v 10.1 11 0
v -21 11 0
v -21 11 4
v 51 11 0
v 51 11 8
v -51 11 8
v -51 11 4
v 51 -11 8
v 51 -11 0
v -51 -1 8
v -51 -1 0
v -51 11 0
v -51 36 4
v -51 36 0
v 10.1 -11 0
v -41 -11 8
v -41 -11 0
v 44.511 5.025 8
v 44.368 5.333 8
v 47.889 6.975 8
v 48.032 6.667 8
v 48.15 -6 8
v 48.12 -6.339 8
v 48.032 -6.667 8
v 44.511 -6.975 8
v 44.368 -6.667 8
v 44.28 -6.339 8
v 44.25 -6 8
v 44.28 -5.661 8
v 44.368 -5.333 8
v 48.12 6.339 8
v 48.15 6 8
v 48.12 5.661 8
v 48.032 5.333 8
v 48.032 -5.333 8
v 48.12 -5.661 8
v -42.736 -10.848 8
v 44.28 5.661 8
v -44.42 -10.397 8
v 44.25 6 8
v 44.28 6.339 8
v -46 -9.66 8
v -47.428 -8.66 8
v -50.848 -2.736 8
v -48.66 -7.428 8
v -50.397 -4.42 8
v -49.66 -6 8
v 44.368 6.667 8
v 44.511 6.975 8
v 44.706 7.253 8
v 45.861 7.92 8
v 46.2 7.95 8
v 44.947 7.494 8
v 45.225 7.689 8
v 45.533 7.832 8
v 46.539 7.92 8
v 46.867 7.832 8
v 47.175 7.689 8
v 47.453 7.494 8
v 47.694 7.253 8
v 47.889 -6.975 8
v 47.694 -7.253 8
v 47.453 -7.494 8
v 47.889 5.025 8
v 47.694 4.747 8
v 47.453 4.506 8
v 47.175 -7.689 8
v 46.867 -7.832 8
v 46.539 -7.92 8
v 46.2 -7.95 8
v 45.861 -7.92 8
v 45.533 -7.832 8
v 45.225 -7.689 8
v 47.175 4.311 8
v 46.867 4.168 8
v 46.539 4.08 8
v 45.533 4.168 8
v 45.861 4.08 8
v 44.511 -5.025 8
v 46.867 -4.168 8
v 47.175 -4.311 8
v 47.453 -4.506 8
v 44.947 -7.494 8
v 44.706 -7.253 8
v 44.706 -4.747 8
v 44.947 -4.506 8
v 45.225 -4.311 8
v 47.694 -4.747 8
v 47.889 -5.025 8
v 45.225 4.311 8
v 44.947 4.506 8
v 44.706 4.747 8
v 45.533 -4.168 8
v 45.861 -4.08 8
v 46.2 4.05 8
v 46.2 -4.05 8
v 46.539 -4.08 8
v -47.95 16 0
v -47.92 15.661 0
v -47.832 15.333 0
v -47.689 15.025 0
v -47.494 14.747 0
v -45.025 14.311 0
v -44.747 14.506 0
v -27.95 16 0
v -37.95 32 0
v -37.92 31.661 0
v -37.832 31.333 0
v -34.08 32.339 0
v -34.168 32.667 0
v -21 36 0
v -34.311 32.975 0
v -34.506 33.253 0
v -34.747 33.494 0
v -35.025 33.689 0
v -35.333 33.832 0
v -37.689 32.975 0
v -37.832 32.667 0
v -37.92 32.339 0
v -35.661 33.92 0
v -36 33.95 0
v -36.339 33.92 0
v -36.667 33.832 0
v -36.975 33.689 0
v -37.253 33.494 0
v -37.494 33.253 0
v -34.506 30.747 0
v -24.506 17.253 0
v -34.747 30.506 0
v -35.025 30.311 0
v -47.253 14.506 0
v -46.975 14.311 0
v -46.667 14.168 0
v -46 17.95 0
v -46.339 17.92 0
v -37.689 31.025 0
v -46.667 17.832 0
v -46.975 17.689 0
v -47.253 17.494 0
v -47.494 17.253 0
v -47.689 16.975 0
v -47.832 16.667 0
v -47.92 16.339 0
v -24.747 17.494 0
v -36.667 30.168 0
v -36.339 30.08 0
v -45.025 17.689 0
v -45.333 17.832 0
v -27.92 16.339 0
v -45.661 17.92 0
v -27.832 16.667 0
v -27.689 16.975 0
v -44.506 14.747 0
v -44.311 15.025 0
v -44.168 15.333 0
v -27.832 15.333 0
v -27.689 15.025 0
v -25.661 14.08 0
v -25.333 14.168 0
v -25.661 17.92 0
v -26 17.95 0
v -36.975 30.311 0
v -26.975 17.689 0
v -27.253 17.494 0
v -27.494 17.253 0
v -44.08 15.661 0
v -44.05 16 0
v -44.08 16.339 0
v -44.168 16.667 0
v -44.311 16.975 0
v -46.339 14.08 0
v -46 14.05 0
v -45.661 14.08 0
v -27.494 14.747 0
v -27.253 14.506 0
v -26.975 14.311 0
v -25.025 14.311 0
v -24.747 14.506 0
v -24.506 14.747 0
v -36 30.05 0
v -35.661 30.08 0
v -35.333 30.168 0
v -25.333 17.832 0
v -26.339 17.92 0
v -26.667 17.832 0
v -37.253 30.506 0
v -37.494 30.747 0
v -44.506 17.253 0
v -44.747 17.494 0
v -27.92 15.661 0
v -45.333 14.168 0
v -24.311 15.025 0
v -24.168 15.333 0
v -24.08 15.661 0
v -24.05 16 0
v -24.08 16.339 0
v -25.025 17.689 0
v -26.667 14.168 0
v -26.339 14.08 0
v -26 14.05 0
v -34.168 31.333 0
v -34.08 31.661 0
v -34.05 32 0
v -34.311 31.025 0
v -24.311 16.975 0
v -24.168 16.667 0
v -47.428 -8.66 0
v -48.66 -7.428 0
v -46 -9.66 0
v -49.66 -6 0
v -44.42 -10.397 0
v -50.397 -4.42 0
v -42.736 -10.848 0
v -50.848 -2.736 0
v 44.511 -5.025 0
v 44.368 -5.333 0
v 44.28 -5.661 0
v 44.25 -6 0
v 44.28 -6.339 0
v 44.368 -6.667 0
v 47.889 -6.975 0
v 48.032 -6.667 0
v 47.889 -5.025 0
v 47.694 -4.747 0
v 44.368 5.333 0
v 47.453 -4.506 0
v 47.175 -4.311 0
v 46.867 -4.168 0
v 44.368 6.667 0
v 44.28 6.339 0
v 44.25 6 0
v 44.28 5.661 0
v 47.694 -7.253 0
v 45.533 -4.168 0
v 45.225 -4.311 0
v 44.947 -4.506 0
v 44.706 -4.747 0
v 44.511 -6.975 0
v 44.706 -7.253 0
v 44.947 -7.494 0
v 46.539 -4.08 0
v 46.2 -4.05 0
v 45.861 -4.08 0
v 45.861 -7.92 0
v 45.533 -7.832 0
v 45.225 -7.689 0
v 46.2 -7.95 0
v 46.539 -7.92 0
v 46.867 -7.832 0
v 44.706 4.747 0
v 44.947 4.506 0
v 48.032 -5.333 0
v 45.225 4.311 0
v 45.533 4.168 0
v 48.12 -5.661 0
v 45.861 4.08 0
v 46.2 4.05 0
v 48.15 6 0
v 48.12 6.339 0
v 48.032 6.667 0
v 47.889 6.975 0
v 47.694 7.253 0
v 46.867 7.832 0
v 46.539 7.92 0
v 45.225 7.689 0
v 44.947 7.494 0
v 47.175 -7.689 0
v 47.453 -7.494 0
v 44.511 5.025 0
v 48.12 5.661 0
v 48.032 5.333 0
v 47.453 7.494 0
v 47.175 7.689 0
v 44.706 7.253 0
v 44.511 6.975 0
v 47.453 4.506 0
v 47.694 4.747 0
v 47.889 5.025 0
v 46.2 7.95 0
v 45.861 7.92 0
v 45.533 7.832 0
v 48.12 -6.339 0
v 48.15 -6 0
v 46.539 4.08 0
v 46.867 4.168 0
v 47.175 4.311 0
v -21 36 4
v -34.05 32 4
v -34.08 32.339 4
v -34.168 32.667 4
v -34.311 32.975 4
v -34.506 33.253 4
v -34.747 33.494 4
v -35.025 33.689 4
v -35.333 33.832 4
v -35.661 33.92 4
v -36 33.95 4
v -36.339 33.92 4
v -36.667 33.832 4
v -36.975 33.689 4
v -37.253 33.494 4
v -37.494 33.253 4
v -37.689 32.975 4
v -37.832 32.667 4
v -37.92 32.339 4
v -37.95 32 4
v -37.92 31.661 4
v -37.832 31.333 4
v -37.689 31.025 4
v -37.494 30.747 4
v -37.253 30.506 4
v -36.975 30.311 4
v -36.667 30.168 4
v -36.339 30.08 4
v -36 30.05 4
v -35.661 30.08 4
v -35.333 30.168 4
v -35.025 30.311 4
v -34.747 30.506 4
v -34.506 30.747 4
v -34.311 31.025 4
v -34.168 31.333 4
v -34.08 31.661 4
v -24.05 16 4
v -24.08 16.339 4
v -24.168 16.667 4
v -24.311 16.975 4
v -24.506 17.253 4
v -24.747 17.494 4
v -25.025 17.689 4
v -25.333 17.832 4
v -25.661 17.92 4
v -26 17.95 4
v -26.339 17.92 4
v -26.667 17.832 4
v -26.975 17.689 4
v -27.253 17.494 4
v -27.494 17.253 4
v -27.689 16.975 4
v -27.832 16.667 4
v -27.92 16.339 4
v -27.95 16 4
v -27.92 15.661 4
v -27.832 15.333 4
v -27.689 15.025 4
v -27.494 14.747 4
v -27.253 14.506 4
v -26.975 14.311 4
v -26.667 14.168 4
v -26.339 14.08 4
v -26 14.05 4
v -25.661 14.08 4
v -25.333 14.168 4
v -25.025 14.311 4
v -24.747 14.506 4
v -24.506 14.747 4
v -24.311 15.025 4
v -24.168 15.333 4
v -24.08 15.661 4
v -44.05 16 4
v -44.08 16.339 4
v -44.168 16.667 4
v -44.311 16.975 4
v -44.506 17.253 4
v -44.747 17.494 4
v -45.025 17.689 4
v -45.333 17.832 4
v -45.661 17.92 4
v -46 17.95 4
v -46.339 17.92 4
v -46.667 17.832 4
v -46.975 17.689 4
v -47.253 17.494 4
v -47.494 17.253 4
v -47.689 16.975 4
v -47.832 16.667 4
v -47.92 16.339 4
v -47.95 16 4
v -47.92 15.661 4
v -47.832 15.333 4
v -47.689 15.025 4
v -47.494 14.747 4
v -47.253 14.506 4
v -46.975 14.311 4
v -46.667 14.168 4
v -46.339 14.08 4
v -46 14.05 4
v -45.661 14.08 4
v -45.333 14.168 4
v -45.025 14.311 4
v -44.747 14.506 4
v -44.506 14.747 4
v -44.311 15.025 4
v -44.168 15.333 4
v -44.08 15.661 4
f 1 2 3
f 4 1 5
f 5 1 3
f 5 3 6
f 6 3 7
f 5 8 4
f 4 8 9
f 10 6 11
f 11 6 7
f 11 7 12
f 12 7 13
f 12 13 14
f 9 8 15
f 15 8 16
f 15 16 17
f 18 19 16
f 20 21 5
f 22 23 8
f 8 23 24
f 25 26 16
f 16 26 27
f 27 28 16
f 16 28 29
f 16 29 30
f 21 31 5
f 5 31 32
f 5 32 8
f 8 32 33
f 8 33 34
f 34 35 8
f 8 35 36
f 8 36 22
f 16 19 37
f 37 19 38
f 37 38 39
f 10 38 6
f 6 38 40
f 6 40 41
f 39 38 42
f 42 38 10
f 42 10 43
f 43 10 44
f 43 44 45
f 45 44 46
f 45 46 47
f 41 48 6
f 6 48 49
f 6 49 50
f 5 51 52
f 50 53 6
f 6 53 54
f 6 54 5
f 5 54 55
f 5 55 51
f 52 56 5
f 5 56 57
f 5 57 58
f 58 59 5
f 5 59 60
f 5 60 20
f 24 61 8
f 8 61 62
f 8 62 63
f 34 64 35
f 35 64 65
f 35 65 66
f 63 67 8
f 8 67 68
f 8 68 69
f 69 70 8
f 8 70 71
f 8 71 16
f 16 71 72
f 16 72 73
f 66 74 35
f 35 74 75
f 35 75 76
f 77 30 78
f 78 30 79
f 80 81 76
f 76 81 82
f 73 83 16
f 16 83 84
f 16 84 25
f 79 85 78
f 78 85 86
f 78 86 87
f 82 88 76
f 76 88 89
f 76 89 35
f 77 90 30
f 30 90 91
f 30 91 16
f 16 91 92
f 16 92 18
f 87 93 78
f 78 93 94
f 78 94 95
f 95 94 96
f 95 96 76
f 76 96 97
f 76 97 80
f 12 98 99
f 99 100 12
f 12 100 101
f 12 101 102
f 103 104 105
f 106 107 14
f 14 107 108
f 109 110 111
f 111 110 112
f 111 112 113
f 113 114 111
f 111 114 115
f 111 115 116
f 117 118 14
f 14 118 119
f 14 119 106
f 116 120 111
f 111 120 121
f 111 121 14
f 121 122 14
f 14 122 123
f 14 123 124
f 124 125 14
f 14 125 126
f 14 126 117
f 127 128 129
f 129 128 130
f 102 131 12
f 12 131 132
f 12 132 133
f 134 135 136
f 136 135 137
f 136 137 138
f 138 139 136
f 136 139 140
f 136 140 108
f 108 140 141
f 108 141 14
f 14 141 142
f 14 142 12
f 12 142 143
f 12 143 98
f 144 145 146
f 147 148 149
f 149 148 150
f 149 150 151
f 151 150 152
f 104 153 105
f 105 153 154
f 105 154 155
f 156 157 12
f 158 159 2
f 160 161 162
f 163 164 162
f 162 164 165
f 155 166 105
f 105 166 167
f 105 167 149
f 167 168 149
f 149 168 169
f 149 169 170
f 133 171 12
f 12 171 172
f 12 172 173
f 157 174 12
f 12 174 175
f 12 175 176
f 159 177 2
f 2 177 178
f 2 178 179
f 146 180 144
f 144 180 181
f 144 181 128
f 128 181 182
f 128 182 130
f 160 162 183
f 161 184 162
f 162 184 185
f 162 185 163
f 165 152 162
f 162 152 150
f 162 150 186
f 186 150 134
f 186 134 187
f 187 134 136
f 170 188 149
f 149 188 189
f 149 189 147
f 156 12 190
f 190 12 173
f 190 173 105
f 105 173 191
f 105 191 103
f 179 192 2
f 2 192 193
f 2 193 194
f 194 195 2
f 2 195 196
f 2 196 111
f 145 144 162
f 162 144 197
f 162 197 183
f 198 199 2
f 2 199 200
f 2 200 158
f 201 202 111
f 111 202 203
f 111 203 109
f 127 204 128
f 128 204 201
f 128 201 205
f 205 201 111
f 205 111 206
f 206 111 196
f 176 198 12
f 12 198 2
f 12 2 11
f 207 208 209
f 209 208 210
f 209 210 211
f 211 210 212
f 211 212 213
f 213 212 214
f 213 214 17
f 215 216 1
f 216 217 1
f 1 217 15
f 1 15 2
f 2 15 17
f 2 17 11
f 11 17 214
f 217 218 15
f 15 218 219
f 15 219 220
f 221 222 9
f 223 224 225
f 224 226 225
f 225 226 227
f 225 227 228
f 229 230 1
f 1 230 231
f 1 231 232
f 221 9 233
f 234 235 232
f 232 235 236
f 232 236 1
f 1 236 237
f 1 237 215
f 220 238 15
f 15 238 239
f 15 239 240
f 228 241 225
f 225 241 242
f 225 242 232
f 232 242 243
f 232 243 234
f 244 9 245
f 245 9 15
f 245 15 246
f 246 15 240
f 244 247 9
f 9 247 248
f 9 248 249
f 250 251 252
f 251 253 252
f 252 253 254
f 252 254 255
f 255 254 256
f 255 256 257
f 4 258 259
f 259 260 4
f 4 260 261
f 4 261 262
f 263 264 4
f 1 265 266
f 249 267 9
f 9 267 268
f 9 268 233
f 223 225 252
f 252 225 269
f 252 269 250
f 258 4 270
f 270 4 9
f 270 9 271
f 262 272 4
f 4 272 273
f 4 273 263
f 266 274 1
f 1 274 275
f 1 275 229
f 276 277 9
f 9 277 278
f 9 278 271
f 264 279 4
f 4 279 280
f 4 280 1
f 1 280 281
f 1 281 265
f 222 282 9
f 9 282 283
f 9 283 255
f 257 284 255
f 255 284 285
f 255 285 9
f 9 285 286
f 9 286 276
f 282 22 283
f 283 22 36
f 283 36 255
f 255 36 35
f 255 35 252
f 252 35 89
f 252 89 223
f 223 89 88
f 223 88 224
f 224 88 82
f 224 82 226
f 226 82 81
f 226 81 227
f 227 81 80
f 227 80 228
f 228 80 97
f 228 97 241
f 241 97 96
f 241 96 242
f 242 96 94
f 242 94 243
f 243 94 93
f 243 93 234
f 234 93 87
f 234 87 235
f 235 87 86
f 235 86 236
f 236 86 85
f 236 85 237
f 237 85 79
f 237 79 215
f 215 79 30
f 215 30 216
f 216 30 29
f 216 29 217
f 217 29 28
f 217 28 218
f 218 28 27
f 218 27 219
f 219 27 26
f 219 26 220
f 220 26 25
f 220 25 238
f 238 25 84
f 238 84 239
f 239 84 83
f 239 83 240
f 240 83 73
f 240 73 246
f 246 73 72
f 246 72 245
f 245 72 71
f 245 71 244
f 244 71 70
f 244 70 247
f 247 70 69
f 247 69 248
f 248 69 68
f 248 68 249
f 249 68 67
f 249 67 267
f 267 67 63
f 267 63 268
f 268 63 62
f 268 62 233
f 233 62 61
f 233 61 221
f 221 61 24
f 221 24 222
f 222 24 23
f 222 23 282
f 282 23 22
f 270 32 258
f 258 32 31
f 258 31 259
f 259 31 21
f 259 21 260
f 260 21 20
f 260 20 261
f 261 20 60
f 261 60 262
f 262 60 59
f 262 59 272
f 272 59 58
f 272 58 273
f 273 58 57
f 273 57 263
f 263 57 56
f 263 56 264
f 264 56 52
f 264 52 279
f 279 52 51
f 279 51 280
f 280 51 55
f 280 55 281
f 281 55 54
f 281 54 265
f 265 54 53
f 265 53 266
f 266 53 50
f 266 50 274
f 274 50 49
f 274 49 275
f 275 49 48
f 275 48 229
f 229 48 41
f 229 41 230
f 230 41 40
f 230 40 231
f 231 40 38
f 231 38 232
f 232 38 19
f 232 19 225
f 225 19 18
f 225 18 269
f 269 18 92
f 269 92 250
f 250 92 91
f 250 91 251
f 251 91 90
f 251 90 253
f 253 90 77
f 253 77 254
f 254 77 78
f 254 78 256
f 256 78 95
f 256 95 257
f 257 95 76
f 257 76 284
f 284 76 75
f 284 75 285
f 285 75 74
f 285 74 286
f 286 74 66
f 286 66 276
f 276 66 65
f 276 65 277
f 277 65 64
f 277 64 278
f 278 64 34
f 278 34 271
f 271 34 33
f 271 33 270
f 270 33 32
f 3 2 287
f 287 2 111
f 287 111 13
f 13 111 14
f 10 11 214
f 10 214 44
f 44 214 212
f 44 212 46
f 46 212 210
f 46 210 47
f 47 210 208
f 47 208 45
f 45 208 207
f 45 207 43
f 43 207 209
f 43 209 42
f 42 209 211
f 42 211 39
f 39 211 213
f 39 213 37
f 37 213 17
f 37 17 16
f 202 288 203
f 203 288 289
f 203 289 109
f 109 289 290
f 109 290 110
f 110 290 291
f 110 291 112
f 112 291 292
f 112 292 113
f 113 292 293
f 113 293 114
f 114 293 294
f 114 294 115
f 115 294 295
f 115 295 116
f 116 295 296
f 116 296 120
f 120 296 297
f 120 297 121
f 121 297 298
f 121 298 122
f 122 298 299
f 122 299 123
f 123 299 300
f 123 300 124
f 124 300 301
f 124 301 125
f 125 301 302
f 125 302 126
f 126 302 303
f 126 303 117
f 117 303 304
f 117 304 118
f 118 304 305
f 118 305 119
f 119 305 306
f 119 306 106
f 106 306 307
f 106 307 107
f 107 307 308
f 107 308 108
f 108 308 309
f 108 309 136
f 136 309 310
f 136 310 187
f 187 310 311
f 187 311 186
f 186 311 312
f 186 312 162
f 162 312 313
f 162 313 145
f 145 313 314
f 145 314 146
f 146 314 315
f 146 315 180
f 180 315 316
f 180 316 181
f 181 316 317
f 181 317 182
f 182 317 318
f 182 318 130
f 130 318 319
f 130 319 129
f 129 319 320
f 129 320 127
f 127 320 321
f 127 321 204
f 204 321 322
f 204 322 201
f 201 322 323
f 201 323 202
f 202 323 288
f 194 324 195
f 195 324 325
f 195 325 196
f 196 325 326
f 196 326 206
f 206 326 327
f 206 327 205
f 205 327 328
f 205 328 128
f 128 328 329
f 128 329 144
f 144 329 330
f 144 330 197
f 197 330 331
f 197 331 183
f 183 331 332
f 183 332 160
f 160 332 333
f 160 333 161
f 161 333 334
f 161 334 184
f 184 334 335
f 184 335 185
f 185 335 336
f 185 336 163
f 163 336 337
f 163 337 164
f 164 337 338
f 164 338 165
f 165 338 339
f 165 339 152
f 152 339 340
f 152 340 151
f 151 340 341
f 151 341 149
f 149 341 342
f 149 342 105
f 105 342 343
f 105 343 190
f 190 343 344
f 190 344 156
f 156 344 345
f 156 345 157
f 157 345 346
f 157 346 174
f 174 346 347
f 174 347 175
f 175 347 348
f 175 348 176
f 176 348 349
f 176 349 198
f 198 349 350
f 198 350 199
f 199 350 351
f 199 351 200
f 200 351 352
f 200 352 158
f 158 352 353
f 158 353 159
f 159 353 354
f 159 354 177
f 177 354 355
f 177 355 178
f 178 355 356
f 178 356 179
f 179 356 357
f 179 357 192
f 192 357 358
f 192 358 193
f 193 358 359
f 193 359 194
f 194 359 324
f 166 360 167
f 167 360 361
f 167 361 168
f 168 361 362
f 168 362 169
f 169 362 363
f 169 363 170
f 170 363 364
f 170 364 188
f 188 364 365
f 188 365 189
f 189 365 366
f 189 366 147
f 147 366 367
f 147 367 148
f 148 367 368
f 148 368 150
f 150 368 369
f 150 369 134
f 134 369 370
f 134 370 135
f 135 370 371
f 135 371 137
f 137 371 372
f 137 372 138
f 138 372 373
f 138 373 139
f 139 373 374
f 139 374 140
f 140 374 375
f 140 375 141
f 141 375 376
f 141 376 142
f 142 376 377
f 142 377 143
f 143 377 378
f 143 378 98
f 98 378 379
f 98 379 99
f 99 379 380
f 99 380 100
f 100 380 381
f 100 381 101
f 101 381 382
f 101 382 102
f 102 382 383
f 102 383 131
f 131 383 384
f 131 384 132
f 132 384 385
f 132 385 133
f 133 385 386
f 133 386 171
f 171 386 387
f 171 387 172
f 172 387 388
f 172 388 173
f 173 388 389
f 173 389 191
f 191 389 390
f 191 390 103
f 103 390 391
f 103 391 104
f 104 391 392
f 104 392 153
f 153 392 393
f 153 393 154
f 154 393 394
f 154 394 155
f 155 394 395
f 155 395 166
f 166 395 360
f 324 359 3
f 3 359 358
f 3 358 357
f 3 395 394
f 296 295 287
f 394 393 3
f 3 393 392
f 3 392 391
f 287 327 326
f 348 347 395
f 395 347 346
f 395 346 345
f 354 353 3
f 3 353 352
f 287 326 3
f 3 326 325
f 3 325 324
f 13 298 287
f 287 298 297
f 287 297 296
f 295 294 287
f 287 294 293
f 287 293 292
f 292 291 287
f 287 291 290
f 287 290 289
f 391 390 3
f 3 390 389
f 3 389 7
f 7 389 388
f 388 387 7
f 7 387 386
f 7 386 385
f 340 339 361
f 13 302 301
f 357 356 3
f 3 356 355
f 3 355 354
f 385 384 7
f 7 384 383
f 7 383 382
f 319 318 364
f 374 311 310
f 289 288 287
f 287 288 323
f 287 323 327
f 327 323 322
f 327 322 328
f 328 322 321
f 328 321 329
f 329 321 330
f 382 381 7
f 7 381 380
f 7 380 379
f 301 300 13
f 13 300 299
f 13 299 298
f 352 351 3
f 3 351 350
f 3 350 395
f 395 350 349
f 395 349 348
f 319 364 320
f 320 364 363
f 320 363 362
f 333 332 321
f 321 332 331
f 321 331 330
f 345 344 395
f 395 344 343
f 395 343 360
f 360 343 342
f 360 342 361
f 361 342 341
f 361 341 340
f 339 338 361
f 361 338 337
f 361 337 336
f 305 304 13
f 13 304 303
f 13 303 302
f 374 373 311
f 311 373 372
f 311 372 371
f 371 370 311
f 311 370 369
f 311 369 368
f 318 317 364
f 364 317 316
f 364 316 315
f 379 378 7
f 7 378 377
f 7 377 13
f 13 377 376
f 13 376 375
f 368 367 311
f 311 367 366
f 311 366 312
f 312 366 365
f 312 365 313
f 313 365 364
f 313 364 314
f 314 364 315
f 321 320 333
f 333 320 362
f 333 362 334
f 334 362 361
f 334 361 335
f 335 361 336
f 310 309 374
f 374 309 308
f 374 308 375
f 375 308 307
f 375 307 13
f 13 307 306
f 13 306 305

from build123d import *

# Parameters (mm, degrees)
SKETCH1_W                    = 102
SKETCH1_H                    = 22
EXTRUDE1_DEPTH               = 8
F_4_0_4_DIAMETER_HOLE1_D     = 3.9
F_4_0_4_DIAMETER_HOLE1_DEPTH = 15
SKETCH3_W                    = 30
SKETCH3_H                    = 25
EXTRUDE2_DEPTH               = 8
FILLET1_R                    = 10
F_4_0_4_DIAMETER_HOLE2_D     = 3.9
F_4_0_4_DIAMETER_HOLE2_DEPTH = 15
SKETCH5_W                    = 30
SKETCH5_H                    = 25
EXTRUDE3_DEPTH               = 4


with BuildPart() as part:
    # Sketch1 → Extrude1 (new body)
    with BuildSketch(Plane.XY):
        Rectangle(SKETCH1_W, SKETCH1_H)
    extrude(amount=EXTRUDE1_DEPTH)

    # Ø4.0 (4) Diameter Hole1
    with Locations(Plane(origin=(46.2, 6, 8), x_dir=(1, 0, 0), z_dir=(0, 0, 1))):
        with Locations((0, 0), (0, -12)):
            Hole(F_4_0_4_DIAMETER_HOLE1_D / 2, depth=F_4_0_4_DIAMETER_HOLE1_DEPTH)

    # Sketch3 → Extrude2 (add)
    with BuildSketch(Plane.XY):
        with Locations((-36, 23.5)):
            Rectangle(SKETCH3_W, SKETCH3_H)
    extrude(amount=EXTRUDE2_DEPTH)

    # Fillet1
    fillet1_edges = [part.edges().sort_by_distance(p)[0] for p in [
        (-51, -11, 4),
    ]]
    fillet(fillet1_edges, radius=FILLET1_R)

    # Ø4.0 (4) Diameter Hole2
    with Locations(Plane(origin=(-46, 16, 8), x_dir=(1, 0, 0), z_dir=(0, 0, 1))):
        with Locations((0, 0), (20, 0), (10, 16)):
            Hole(F_4_0_4_DIAMETER_HOLE2_D / 2, depth=F_4_0_4_DIAMETER_HOLE2_DEPTH)

    # Sketch5 → Extrude3 (cut)
    with BuildSketch(Plane.XY.offset(8)):
        with Locations((-36, 23.5)):
            Rectangle(SKETCH5_W, SKETCH5_H)
    extrude(amount=-EXTRUDE3_DEPTH, mode=Mode.SUBTRACT)


solid = part.part
